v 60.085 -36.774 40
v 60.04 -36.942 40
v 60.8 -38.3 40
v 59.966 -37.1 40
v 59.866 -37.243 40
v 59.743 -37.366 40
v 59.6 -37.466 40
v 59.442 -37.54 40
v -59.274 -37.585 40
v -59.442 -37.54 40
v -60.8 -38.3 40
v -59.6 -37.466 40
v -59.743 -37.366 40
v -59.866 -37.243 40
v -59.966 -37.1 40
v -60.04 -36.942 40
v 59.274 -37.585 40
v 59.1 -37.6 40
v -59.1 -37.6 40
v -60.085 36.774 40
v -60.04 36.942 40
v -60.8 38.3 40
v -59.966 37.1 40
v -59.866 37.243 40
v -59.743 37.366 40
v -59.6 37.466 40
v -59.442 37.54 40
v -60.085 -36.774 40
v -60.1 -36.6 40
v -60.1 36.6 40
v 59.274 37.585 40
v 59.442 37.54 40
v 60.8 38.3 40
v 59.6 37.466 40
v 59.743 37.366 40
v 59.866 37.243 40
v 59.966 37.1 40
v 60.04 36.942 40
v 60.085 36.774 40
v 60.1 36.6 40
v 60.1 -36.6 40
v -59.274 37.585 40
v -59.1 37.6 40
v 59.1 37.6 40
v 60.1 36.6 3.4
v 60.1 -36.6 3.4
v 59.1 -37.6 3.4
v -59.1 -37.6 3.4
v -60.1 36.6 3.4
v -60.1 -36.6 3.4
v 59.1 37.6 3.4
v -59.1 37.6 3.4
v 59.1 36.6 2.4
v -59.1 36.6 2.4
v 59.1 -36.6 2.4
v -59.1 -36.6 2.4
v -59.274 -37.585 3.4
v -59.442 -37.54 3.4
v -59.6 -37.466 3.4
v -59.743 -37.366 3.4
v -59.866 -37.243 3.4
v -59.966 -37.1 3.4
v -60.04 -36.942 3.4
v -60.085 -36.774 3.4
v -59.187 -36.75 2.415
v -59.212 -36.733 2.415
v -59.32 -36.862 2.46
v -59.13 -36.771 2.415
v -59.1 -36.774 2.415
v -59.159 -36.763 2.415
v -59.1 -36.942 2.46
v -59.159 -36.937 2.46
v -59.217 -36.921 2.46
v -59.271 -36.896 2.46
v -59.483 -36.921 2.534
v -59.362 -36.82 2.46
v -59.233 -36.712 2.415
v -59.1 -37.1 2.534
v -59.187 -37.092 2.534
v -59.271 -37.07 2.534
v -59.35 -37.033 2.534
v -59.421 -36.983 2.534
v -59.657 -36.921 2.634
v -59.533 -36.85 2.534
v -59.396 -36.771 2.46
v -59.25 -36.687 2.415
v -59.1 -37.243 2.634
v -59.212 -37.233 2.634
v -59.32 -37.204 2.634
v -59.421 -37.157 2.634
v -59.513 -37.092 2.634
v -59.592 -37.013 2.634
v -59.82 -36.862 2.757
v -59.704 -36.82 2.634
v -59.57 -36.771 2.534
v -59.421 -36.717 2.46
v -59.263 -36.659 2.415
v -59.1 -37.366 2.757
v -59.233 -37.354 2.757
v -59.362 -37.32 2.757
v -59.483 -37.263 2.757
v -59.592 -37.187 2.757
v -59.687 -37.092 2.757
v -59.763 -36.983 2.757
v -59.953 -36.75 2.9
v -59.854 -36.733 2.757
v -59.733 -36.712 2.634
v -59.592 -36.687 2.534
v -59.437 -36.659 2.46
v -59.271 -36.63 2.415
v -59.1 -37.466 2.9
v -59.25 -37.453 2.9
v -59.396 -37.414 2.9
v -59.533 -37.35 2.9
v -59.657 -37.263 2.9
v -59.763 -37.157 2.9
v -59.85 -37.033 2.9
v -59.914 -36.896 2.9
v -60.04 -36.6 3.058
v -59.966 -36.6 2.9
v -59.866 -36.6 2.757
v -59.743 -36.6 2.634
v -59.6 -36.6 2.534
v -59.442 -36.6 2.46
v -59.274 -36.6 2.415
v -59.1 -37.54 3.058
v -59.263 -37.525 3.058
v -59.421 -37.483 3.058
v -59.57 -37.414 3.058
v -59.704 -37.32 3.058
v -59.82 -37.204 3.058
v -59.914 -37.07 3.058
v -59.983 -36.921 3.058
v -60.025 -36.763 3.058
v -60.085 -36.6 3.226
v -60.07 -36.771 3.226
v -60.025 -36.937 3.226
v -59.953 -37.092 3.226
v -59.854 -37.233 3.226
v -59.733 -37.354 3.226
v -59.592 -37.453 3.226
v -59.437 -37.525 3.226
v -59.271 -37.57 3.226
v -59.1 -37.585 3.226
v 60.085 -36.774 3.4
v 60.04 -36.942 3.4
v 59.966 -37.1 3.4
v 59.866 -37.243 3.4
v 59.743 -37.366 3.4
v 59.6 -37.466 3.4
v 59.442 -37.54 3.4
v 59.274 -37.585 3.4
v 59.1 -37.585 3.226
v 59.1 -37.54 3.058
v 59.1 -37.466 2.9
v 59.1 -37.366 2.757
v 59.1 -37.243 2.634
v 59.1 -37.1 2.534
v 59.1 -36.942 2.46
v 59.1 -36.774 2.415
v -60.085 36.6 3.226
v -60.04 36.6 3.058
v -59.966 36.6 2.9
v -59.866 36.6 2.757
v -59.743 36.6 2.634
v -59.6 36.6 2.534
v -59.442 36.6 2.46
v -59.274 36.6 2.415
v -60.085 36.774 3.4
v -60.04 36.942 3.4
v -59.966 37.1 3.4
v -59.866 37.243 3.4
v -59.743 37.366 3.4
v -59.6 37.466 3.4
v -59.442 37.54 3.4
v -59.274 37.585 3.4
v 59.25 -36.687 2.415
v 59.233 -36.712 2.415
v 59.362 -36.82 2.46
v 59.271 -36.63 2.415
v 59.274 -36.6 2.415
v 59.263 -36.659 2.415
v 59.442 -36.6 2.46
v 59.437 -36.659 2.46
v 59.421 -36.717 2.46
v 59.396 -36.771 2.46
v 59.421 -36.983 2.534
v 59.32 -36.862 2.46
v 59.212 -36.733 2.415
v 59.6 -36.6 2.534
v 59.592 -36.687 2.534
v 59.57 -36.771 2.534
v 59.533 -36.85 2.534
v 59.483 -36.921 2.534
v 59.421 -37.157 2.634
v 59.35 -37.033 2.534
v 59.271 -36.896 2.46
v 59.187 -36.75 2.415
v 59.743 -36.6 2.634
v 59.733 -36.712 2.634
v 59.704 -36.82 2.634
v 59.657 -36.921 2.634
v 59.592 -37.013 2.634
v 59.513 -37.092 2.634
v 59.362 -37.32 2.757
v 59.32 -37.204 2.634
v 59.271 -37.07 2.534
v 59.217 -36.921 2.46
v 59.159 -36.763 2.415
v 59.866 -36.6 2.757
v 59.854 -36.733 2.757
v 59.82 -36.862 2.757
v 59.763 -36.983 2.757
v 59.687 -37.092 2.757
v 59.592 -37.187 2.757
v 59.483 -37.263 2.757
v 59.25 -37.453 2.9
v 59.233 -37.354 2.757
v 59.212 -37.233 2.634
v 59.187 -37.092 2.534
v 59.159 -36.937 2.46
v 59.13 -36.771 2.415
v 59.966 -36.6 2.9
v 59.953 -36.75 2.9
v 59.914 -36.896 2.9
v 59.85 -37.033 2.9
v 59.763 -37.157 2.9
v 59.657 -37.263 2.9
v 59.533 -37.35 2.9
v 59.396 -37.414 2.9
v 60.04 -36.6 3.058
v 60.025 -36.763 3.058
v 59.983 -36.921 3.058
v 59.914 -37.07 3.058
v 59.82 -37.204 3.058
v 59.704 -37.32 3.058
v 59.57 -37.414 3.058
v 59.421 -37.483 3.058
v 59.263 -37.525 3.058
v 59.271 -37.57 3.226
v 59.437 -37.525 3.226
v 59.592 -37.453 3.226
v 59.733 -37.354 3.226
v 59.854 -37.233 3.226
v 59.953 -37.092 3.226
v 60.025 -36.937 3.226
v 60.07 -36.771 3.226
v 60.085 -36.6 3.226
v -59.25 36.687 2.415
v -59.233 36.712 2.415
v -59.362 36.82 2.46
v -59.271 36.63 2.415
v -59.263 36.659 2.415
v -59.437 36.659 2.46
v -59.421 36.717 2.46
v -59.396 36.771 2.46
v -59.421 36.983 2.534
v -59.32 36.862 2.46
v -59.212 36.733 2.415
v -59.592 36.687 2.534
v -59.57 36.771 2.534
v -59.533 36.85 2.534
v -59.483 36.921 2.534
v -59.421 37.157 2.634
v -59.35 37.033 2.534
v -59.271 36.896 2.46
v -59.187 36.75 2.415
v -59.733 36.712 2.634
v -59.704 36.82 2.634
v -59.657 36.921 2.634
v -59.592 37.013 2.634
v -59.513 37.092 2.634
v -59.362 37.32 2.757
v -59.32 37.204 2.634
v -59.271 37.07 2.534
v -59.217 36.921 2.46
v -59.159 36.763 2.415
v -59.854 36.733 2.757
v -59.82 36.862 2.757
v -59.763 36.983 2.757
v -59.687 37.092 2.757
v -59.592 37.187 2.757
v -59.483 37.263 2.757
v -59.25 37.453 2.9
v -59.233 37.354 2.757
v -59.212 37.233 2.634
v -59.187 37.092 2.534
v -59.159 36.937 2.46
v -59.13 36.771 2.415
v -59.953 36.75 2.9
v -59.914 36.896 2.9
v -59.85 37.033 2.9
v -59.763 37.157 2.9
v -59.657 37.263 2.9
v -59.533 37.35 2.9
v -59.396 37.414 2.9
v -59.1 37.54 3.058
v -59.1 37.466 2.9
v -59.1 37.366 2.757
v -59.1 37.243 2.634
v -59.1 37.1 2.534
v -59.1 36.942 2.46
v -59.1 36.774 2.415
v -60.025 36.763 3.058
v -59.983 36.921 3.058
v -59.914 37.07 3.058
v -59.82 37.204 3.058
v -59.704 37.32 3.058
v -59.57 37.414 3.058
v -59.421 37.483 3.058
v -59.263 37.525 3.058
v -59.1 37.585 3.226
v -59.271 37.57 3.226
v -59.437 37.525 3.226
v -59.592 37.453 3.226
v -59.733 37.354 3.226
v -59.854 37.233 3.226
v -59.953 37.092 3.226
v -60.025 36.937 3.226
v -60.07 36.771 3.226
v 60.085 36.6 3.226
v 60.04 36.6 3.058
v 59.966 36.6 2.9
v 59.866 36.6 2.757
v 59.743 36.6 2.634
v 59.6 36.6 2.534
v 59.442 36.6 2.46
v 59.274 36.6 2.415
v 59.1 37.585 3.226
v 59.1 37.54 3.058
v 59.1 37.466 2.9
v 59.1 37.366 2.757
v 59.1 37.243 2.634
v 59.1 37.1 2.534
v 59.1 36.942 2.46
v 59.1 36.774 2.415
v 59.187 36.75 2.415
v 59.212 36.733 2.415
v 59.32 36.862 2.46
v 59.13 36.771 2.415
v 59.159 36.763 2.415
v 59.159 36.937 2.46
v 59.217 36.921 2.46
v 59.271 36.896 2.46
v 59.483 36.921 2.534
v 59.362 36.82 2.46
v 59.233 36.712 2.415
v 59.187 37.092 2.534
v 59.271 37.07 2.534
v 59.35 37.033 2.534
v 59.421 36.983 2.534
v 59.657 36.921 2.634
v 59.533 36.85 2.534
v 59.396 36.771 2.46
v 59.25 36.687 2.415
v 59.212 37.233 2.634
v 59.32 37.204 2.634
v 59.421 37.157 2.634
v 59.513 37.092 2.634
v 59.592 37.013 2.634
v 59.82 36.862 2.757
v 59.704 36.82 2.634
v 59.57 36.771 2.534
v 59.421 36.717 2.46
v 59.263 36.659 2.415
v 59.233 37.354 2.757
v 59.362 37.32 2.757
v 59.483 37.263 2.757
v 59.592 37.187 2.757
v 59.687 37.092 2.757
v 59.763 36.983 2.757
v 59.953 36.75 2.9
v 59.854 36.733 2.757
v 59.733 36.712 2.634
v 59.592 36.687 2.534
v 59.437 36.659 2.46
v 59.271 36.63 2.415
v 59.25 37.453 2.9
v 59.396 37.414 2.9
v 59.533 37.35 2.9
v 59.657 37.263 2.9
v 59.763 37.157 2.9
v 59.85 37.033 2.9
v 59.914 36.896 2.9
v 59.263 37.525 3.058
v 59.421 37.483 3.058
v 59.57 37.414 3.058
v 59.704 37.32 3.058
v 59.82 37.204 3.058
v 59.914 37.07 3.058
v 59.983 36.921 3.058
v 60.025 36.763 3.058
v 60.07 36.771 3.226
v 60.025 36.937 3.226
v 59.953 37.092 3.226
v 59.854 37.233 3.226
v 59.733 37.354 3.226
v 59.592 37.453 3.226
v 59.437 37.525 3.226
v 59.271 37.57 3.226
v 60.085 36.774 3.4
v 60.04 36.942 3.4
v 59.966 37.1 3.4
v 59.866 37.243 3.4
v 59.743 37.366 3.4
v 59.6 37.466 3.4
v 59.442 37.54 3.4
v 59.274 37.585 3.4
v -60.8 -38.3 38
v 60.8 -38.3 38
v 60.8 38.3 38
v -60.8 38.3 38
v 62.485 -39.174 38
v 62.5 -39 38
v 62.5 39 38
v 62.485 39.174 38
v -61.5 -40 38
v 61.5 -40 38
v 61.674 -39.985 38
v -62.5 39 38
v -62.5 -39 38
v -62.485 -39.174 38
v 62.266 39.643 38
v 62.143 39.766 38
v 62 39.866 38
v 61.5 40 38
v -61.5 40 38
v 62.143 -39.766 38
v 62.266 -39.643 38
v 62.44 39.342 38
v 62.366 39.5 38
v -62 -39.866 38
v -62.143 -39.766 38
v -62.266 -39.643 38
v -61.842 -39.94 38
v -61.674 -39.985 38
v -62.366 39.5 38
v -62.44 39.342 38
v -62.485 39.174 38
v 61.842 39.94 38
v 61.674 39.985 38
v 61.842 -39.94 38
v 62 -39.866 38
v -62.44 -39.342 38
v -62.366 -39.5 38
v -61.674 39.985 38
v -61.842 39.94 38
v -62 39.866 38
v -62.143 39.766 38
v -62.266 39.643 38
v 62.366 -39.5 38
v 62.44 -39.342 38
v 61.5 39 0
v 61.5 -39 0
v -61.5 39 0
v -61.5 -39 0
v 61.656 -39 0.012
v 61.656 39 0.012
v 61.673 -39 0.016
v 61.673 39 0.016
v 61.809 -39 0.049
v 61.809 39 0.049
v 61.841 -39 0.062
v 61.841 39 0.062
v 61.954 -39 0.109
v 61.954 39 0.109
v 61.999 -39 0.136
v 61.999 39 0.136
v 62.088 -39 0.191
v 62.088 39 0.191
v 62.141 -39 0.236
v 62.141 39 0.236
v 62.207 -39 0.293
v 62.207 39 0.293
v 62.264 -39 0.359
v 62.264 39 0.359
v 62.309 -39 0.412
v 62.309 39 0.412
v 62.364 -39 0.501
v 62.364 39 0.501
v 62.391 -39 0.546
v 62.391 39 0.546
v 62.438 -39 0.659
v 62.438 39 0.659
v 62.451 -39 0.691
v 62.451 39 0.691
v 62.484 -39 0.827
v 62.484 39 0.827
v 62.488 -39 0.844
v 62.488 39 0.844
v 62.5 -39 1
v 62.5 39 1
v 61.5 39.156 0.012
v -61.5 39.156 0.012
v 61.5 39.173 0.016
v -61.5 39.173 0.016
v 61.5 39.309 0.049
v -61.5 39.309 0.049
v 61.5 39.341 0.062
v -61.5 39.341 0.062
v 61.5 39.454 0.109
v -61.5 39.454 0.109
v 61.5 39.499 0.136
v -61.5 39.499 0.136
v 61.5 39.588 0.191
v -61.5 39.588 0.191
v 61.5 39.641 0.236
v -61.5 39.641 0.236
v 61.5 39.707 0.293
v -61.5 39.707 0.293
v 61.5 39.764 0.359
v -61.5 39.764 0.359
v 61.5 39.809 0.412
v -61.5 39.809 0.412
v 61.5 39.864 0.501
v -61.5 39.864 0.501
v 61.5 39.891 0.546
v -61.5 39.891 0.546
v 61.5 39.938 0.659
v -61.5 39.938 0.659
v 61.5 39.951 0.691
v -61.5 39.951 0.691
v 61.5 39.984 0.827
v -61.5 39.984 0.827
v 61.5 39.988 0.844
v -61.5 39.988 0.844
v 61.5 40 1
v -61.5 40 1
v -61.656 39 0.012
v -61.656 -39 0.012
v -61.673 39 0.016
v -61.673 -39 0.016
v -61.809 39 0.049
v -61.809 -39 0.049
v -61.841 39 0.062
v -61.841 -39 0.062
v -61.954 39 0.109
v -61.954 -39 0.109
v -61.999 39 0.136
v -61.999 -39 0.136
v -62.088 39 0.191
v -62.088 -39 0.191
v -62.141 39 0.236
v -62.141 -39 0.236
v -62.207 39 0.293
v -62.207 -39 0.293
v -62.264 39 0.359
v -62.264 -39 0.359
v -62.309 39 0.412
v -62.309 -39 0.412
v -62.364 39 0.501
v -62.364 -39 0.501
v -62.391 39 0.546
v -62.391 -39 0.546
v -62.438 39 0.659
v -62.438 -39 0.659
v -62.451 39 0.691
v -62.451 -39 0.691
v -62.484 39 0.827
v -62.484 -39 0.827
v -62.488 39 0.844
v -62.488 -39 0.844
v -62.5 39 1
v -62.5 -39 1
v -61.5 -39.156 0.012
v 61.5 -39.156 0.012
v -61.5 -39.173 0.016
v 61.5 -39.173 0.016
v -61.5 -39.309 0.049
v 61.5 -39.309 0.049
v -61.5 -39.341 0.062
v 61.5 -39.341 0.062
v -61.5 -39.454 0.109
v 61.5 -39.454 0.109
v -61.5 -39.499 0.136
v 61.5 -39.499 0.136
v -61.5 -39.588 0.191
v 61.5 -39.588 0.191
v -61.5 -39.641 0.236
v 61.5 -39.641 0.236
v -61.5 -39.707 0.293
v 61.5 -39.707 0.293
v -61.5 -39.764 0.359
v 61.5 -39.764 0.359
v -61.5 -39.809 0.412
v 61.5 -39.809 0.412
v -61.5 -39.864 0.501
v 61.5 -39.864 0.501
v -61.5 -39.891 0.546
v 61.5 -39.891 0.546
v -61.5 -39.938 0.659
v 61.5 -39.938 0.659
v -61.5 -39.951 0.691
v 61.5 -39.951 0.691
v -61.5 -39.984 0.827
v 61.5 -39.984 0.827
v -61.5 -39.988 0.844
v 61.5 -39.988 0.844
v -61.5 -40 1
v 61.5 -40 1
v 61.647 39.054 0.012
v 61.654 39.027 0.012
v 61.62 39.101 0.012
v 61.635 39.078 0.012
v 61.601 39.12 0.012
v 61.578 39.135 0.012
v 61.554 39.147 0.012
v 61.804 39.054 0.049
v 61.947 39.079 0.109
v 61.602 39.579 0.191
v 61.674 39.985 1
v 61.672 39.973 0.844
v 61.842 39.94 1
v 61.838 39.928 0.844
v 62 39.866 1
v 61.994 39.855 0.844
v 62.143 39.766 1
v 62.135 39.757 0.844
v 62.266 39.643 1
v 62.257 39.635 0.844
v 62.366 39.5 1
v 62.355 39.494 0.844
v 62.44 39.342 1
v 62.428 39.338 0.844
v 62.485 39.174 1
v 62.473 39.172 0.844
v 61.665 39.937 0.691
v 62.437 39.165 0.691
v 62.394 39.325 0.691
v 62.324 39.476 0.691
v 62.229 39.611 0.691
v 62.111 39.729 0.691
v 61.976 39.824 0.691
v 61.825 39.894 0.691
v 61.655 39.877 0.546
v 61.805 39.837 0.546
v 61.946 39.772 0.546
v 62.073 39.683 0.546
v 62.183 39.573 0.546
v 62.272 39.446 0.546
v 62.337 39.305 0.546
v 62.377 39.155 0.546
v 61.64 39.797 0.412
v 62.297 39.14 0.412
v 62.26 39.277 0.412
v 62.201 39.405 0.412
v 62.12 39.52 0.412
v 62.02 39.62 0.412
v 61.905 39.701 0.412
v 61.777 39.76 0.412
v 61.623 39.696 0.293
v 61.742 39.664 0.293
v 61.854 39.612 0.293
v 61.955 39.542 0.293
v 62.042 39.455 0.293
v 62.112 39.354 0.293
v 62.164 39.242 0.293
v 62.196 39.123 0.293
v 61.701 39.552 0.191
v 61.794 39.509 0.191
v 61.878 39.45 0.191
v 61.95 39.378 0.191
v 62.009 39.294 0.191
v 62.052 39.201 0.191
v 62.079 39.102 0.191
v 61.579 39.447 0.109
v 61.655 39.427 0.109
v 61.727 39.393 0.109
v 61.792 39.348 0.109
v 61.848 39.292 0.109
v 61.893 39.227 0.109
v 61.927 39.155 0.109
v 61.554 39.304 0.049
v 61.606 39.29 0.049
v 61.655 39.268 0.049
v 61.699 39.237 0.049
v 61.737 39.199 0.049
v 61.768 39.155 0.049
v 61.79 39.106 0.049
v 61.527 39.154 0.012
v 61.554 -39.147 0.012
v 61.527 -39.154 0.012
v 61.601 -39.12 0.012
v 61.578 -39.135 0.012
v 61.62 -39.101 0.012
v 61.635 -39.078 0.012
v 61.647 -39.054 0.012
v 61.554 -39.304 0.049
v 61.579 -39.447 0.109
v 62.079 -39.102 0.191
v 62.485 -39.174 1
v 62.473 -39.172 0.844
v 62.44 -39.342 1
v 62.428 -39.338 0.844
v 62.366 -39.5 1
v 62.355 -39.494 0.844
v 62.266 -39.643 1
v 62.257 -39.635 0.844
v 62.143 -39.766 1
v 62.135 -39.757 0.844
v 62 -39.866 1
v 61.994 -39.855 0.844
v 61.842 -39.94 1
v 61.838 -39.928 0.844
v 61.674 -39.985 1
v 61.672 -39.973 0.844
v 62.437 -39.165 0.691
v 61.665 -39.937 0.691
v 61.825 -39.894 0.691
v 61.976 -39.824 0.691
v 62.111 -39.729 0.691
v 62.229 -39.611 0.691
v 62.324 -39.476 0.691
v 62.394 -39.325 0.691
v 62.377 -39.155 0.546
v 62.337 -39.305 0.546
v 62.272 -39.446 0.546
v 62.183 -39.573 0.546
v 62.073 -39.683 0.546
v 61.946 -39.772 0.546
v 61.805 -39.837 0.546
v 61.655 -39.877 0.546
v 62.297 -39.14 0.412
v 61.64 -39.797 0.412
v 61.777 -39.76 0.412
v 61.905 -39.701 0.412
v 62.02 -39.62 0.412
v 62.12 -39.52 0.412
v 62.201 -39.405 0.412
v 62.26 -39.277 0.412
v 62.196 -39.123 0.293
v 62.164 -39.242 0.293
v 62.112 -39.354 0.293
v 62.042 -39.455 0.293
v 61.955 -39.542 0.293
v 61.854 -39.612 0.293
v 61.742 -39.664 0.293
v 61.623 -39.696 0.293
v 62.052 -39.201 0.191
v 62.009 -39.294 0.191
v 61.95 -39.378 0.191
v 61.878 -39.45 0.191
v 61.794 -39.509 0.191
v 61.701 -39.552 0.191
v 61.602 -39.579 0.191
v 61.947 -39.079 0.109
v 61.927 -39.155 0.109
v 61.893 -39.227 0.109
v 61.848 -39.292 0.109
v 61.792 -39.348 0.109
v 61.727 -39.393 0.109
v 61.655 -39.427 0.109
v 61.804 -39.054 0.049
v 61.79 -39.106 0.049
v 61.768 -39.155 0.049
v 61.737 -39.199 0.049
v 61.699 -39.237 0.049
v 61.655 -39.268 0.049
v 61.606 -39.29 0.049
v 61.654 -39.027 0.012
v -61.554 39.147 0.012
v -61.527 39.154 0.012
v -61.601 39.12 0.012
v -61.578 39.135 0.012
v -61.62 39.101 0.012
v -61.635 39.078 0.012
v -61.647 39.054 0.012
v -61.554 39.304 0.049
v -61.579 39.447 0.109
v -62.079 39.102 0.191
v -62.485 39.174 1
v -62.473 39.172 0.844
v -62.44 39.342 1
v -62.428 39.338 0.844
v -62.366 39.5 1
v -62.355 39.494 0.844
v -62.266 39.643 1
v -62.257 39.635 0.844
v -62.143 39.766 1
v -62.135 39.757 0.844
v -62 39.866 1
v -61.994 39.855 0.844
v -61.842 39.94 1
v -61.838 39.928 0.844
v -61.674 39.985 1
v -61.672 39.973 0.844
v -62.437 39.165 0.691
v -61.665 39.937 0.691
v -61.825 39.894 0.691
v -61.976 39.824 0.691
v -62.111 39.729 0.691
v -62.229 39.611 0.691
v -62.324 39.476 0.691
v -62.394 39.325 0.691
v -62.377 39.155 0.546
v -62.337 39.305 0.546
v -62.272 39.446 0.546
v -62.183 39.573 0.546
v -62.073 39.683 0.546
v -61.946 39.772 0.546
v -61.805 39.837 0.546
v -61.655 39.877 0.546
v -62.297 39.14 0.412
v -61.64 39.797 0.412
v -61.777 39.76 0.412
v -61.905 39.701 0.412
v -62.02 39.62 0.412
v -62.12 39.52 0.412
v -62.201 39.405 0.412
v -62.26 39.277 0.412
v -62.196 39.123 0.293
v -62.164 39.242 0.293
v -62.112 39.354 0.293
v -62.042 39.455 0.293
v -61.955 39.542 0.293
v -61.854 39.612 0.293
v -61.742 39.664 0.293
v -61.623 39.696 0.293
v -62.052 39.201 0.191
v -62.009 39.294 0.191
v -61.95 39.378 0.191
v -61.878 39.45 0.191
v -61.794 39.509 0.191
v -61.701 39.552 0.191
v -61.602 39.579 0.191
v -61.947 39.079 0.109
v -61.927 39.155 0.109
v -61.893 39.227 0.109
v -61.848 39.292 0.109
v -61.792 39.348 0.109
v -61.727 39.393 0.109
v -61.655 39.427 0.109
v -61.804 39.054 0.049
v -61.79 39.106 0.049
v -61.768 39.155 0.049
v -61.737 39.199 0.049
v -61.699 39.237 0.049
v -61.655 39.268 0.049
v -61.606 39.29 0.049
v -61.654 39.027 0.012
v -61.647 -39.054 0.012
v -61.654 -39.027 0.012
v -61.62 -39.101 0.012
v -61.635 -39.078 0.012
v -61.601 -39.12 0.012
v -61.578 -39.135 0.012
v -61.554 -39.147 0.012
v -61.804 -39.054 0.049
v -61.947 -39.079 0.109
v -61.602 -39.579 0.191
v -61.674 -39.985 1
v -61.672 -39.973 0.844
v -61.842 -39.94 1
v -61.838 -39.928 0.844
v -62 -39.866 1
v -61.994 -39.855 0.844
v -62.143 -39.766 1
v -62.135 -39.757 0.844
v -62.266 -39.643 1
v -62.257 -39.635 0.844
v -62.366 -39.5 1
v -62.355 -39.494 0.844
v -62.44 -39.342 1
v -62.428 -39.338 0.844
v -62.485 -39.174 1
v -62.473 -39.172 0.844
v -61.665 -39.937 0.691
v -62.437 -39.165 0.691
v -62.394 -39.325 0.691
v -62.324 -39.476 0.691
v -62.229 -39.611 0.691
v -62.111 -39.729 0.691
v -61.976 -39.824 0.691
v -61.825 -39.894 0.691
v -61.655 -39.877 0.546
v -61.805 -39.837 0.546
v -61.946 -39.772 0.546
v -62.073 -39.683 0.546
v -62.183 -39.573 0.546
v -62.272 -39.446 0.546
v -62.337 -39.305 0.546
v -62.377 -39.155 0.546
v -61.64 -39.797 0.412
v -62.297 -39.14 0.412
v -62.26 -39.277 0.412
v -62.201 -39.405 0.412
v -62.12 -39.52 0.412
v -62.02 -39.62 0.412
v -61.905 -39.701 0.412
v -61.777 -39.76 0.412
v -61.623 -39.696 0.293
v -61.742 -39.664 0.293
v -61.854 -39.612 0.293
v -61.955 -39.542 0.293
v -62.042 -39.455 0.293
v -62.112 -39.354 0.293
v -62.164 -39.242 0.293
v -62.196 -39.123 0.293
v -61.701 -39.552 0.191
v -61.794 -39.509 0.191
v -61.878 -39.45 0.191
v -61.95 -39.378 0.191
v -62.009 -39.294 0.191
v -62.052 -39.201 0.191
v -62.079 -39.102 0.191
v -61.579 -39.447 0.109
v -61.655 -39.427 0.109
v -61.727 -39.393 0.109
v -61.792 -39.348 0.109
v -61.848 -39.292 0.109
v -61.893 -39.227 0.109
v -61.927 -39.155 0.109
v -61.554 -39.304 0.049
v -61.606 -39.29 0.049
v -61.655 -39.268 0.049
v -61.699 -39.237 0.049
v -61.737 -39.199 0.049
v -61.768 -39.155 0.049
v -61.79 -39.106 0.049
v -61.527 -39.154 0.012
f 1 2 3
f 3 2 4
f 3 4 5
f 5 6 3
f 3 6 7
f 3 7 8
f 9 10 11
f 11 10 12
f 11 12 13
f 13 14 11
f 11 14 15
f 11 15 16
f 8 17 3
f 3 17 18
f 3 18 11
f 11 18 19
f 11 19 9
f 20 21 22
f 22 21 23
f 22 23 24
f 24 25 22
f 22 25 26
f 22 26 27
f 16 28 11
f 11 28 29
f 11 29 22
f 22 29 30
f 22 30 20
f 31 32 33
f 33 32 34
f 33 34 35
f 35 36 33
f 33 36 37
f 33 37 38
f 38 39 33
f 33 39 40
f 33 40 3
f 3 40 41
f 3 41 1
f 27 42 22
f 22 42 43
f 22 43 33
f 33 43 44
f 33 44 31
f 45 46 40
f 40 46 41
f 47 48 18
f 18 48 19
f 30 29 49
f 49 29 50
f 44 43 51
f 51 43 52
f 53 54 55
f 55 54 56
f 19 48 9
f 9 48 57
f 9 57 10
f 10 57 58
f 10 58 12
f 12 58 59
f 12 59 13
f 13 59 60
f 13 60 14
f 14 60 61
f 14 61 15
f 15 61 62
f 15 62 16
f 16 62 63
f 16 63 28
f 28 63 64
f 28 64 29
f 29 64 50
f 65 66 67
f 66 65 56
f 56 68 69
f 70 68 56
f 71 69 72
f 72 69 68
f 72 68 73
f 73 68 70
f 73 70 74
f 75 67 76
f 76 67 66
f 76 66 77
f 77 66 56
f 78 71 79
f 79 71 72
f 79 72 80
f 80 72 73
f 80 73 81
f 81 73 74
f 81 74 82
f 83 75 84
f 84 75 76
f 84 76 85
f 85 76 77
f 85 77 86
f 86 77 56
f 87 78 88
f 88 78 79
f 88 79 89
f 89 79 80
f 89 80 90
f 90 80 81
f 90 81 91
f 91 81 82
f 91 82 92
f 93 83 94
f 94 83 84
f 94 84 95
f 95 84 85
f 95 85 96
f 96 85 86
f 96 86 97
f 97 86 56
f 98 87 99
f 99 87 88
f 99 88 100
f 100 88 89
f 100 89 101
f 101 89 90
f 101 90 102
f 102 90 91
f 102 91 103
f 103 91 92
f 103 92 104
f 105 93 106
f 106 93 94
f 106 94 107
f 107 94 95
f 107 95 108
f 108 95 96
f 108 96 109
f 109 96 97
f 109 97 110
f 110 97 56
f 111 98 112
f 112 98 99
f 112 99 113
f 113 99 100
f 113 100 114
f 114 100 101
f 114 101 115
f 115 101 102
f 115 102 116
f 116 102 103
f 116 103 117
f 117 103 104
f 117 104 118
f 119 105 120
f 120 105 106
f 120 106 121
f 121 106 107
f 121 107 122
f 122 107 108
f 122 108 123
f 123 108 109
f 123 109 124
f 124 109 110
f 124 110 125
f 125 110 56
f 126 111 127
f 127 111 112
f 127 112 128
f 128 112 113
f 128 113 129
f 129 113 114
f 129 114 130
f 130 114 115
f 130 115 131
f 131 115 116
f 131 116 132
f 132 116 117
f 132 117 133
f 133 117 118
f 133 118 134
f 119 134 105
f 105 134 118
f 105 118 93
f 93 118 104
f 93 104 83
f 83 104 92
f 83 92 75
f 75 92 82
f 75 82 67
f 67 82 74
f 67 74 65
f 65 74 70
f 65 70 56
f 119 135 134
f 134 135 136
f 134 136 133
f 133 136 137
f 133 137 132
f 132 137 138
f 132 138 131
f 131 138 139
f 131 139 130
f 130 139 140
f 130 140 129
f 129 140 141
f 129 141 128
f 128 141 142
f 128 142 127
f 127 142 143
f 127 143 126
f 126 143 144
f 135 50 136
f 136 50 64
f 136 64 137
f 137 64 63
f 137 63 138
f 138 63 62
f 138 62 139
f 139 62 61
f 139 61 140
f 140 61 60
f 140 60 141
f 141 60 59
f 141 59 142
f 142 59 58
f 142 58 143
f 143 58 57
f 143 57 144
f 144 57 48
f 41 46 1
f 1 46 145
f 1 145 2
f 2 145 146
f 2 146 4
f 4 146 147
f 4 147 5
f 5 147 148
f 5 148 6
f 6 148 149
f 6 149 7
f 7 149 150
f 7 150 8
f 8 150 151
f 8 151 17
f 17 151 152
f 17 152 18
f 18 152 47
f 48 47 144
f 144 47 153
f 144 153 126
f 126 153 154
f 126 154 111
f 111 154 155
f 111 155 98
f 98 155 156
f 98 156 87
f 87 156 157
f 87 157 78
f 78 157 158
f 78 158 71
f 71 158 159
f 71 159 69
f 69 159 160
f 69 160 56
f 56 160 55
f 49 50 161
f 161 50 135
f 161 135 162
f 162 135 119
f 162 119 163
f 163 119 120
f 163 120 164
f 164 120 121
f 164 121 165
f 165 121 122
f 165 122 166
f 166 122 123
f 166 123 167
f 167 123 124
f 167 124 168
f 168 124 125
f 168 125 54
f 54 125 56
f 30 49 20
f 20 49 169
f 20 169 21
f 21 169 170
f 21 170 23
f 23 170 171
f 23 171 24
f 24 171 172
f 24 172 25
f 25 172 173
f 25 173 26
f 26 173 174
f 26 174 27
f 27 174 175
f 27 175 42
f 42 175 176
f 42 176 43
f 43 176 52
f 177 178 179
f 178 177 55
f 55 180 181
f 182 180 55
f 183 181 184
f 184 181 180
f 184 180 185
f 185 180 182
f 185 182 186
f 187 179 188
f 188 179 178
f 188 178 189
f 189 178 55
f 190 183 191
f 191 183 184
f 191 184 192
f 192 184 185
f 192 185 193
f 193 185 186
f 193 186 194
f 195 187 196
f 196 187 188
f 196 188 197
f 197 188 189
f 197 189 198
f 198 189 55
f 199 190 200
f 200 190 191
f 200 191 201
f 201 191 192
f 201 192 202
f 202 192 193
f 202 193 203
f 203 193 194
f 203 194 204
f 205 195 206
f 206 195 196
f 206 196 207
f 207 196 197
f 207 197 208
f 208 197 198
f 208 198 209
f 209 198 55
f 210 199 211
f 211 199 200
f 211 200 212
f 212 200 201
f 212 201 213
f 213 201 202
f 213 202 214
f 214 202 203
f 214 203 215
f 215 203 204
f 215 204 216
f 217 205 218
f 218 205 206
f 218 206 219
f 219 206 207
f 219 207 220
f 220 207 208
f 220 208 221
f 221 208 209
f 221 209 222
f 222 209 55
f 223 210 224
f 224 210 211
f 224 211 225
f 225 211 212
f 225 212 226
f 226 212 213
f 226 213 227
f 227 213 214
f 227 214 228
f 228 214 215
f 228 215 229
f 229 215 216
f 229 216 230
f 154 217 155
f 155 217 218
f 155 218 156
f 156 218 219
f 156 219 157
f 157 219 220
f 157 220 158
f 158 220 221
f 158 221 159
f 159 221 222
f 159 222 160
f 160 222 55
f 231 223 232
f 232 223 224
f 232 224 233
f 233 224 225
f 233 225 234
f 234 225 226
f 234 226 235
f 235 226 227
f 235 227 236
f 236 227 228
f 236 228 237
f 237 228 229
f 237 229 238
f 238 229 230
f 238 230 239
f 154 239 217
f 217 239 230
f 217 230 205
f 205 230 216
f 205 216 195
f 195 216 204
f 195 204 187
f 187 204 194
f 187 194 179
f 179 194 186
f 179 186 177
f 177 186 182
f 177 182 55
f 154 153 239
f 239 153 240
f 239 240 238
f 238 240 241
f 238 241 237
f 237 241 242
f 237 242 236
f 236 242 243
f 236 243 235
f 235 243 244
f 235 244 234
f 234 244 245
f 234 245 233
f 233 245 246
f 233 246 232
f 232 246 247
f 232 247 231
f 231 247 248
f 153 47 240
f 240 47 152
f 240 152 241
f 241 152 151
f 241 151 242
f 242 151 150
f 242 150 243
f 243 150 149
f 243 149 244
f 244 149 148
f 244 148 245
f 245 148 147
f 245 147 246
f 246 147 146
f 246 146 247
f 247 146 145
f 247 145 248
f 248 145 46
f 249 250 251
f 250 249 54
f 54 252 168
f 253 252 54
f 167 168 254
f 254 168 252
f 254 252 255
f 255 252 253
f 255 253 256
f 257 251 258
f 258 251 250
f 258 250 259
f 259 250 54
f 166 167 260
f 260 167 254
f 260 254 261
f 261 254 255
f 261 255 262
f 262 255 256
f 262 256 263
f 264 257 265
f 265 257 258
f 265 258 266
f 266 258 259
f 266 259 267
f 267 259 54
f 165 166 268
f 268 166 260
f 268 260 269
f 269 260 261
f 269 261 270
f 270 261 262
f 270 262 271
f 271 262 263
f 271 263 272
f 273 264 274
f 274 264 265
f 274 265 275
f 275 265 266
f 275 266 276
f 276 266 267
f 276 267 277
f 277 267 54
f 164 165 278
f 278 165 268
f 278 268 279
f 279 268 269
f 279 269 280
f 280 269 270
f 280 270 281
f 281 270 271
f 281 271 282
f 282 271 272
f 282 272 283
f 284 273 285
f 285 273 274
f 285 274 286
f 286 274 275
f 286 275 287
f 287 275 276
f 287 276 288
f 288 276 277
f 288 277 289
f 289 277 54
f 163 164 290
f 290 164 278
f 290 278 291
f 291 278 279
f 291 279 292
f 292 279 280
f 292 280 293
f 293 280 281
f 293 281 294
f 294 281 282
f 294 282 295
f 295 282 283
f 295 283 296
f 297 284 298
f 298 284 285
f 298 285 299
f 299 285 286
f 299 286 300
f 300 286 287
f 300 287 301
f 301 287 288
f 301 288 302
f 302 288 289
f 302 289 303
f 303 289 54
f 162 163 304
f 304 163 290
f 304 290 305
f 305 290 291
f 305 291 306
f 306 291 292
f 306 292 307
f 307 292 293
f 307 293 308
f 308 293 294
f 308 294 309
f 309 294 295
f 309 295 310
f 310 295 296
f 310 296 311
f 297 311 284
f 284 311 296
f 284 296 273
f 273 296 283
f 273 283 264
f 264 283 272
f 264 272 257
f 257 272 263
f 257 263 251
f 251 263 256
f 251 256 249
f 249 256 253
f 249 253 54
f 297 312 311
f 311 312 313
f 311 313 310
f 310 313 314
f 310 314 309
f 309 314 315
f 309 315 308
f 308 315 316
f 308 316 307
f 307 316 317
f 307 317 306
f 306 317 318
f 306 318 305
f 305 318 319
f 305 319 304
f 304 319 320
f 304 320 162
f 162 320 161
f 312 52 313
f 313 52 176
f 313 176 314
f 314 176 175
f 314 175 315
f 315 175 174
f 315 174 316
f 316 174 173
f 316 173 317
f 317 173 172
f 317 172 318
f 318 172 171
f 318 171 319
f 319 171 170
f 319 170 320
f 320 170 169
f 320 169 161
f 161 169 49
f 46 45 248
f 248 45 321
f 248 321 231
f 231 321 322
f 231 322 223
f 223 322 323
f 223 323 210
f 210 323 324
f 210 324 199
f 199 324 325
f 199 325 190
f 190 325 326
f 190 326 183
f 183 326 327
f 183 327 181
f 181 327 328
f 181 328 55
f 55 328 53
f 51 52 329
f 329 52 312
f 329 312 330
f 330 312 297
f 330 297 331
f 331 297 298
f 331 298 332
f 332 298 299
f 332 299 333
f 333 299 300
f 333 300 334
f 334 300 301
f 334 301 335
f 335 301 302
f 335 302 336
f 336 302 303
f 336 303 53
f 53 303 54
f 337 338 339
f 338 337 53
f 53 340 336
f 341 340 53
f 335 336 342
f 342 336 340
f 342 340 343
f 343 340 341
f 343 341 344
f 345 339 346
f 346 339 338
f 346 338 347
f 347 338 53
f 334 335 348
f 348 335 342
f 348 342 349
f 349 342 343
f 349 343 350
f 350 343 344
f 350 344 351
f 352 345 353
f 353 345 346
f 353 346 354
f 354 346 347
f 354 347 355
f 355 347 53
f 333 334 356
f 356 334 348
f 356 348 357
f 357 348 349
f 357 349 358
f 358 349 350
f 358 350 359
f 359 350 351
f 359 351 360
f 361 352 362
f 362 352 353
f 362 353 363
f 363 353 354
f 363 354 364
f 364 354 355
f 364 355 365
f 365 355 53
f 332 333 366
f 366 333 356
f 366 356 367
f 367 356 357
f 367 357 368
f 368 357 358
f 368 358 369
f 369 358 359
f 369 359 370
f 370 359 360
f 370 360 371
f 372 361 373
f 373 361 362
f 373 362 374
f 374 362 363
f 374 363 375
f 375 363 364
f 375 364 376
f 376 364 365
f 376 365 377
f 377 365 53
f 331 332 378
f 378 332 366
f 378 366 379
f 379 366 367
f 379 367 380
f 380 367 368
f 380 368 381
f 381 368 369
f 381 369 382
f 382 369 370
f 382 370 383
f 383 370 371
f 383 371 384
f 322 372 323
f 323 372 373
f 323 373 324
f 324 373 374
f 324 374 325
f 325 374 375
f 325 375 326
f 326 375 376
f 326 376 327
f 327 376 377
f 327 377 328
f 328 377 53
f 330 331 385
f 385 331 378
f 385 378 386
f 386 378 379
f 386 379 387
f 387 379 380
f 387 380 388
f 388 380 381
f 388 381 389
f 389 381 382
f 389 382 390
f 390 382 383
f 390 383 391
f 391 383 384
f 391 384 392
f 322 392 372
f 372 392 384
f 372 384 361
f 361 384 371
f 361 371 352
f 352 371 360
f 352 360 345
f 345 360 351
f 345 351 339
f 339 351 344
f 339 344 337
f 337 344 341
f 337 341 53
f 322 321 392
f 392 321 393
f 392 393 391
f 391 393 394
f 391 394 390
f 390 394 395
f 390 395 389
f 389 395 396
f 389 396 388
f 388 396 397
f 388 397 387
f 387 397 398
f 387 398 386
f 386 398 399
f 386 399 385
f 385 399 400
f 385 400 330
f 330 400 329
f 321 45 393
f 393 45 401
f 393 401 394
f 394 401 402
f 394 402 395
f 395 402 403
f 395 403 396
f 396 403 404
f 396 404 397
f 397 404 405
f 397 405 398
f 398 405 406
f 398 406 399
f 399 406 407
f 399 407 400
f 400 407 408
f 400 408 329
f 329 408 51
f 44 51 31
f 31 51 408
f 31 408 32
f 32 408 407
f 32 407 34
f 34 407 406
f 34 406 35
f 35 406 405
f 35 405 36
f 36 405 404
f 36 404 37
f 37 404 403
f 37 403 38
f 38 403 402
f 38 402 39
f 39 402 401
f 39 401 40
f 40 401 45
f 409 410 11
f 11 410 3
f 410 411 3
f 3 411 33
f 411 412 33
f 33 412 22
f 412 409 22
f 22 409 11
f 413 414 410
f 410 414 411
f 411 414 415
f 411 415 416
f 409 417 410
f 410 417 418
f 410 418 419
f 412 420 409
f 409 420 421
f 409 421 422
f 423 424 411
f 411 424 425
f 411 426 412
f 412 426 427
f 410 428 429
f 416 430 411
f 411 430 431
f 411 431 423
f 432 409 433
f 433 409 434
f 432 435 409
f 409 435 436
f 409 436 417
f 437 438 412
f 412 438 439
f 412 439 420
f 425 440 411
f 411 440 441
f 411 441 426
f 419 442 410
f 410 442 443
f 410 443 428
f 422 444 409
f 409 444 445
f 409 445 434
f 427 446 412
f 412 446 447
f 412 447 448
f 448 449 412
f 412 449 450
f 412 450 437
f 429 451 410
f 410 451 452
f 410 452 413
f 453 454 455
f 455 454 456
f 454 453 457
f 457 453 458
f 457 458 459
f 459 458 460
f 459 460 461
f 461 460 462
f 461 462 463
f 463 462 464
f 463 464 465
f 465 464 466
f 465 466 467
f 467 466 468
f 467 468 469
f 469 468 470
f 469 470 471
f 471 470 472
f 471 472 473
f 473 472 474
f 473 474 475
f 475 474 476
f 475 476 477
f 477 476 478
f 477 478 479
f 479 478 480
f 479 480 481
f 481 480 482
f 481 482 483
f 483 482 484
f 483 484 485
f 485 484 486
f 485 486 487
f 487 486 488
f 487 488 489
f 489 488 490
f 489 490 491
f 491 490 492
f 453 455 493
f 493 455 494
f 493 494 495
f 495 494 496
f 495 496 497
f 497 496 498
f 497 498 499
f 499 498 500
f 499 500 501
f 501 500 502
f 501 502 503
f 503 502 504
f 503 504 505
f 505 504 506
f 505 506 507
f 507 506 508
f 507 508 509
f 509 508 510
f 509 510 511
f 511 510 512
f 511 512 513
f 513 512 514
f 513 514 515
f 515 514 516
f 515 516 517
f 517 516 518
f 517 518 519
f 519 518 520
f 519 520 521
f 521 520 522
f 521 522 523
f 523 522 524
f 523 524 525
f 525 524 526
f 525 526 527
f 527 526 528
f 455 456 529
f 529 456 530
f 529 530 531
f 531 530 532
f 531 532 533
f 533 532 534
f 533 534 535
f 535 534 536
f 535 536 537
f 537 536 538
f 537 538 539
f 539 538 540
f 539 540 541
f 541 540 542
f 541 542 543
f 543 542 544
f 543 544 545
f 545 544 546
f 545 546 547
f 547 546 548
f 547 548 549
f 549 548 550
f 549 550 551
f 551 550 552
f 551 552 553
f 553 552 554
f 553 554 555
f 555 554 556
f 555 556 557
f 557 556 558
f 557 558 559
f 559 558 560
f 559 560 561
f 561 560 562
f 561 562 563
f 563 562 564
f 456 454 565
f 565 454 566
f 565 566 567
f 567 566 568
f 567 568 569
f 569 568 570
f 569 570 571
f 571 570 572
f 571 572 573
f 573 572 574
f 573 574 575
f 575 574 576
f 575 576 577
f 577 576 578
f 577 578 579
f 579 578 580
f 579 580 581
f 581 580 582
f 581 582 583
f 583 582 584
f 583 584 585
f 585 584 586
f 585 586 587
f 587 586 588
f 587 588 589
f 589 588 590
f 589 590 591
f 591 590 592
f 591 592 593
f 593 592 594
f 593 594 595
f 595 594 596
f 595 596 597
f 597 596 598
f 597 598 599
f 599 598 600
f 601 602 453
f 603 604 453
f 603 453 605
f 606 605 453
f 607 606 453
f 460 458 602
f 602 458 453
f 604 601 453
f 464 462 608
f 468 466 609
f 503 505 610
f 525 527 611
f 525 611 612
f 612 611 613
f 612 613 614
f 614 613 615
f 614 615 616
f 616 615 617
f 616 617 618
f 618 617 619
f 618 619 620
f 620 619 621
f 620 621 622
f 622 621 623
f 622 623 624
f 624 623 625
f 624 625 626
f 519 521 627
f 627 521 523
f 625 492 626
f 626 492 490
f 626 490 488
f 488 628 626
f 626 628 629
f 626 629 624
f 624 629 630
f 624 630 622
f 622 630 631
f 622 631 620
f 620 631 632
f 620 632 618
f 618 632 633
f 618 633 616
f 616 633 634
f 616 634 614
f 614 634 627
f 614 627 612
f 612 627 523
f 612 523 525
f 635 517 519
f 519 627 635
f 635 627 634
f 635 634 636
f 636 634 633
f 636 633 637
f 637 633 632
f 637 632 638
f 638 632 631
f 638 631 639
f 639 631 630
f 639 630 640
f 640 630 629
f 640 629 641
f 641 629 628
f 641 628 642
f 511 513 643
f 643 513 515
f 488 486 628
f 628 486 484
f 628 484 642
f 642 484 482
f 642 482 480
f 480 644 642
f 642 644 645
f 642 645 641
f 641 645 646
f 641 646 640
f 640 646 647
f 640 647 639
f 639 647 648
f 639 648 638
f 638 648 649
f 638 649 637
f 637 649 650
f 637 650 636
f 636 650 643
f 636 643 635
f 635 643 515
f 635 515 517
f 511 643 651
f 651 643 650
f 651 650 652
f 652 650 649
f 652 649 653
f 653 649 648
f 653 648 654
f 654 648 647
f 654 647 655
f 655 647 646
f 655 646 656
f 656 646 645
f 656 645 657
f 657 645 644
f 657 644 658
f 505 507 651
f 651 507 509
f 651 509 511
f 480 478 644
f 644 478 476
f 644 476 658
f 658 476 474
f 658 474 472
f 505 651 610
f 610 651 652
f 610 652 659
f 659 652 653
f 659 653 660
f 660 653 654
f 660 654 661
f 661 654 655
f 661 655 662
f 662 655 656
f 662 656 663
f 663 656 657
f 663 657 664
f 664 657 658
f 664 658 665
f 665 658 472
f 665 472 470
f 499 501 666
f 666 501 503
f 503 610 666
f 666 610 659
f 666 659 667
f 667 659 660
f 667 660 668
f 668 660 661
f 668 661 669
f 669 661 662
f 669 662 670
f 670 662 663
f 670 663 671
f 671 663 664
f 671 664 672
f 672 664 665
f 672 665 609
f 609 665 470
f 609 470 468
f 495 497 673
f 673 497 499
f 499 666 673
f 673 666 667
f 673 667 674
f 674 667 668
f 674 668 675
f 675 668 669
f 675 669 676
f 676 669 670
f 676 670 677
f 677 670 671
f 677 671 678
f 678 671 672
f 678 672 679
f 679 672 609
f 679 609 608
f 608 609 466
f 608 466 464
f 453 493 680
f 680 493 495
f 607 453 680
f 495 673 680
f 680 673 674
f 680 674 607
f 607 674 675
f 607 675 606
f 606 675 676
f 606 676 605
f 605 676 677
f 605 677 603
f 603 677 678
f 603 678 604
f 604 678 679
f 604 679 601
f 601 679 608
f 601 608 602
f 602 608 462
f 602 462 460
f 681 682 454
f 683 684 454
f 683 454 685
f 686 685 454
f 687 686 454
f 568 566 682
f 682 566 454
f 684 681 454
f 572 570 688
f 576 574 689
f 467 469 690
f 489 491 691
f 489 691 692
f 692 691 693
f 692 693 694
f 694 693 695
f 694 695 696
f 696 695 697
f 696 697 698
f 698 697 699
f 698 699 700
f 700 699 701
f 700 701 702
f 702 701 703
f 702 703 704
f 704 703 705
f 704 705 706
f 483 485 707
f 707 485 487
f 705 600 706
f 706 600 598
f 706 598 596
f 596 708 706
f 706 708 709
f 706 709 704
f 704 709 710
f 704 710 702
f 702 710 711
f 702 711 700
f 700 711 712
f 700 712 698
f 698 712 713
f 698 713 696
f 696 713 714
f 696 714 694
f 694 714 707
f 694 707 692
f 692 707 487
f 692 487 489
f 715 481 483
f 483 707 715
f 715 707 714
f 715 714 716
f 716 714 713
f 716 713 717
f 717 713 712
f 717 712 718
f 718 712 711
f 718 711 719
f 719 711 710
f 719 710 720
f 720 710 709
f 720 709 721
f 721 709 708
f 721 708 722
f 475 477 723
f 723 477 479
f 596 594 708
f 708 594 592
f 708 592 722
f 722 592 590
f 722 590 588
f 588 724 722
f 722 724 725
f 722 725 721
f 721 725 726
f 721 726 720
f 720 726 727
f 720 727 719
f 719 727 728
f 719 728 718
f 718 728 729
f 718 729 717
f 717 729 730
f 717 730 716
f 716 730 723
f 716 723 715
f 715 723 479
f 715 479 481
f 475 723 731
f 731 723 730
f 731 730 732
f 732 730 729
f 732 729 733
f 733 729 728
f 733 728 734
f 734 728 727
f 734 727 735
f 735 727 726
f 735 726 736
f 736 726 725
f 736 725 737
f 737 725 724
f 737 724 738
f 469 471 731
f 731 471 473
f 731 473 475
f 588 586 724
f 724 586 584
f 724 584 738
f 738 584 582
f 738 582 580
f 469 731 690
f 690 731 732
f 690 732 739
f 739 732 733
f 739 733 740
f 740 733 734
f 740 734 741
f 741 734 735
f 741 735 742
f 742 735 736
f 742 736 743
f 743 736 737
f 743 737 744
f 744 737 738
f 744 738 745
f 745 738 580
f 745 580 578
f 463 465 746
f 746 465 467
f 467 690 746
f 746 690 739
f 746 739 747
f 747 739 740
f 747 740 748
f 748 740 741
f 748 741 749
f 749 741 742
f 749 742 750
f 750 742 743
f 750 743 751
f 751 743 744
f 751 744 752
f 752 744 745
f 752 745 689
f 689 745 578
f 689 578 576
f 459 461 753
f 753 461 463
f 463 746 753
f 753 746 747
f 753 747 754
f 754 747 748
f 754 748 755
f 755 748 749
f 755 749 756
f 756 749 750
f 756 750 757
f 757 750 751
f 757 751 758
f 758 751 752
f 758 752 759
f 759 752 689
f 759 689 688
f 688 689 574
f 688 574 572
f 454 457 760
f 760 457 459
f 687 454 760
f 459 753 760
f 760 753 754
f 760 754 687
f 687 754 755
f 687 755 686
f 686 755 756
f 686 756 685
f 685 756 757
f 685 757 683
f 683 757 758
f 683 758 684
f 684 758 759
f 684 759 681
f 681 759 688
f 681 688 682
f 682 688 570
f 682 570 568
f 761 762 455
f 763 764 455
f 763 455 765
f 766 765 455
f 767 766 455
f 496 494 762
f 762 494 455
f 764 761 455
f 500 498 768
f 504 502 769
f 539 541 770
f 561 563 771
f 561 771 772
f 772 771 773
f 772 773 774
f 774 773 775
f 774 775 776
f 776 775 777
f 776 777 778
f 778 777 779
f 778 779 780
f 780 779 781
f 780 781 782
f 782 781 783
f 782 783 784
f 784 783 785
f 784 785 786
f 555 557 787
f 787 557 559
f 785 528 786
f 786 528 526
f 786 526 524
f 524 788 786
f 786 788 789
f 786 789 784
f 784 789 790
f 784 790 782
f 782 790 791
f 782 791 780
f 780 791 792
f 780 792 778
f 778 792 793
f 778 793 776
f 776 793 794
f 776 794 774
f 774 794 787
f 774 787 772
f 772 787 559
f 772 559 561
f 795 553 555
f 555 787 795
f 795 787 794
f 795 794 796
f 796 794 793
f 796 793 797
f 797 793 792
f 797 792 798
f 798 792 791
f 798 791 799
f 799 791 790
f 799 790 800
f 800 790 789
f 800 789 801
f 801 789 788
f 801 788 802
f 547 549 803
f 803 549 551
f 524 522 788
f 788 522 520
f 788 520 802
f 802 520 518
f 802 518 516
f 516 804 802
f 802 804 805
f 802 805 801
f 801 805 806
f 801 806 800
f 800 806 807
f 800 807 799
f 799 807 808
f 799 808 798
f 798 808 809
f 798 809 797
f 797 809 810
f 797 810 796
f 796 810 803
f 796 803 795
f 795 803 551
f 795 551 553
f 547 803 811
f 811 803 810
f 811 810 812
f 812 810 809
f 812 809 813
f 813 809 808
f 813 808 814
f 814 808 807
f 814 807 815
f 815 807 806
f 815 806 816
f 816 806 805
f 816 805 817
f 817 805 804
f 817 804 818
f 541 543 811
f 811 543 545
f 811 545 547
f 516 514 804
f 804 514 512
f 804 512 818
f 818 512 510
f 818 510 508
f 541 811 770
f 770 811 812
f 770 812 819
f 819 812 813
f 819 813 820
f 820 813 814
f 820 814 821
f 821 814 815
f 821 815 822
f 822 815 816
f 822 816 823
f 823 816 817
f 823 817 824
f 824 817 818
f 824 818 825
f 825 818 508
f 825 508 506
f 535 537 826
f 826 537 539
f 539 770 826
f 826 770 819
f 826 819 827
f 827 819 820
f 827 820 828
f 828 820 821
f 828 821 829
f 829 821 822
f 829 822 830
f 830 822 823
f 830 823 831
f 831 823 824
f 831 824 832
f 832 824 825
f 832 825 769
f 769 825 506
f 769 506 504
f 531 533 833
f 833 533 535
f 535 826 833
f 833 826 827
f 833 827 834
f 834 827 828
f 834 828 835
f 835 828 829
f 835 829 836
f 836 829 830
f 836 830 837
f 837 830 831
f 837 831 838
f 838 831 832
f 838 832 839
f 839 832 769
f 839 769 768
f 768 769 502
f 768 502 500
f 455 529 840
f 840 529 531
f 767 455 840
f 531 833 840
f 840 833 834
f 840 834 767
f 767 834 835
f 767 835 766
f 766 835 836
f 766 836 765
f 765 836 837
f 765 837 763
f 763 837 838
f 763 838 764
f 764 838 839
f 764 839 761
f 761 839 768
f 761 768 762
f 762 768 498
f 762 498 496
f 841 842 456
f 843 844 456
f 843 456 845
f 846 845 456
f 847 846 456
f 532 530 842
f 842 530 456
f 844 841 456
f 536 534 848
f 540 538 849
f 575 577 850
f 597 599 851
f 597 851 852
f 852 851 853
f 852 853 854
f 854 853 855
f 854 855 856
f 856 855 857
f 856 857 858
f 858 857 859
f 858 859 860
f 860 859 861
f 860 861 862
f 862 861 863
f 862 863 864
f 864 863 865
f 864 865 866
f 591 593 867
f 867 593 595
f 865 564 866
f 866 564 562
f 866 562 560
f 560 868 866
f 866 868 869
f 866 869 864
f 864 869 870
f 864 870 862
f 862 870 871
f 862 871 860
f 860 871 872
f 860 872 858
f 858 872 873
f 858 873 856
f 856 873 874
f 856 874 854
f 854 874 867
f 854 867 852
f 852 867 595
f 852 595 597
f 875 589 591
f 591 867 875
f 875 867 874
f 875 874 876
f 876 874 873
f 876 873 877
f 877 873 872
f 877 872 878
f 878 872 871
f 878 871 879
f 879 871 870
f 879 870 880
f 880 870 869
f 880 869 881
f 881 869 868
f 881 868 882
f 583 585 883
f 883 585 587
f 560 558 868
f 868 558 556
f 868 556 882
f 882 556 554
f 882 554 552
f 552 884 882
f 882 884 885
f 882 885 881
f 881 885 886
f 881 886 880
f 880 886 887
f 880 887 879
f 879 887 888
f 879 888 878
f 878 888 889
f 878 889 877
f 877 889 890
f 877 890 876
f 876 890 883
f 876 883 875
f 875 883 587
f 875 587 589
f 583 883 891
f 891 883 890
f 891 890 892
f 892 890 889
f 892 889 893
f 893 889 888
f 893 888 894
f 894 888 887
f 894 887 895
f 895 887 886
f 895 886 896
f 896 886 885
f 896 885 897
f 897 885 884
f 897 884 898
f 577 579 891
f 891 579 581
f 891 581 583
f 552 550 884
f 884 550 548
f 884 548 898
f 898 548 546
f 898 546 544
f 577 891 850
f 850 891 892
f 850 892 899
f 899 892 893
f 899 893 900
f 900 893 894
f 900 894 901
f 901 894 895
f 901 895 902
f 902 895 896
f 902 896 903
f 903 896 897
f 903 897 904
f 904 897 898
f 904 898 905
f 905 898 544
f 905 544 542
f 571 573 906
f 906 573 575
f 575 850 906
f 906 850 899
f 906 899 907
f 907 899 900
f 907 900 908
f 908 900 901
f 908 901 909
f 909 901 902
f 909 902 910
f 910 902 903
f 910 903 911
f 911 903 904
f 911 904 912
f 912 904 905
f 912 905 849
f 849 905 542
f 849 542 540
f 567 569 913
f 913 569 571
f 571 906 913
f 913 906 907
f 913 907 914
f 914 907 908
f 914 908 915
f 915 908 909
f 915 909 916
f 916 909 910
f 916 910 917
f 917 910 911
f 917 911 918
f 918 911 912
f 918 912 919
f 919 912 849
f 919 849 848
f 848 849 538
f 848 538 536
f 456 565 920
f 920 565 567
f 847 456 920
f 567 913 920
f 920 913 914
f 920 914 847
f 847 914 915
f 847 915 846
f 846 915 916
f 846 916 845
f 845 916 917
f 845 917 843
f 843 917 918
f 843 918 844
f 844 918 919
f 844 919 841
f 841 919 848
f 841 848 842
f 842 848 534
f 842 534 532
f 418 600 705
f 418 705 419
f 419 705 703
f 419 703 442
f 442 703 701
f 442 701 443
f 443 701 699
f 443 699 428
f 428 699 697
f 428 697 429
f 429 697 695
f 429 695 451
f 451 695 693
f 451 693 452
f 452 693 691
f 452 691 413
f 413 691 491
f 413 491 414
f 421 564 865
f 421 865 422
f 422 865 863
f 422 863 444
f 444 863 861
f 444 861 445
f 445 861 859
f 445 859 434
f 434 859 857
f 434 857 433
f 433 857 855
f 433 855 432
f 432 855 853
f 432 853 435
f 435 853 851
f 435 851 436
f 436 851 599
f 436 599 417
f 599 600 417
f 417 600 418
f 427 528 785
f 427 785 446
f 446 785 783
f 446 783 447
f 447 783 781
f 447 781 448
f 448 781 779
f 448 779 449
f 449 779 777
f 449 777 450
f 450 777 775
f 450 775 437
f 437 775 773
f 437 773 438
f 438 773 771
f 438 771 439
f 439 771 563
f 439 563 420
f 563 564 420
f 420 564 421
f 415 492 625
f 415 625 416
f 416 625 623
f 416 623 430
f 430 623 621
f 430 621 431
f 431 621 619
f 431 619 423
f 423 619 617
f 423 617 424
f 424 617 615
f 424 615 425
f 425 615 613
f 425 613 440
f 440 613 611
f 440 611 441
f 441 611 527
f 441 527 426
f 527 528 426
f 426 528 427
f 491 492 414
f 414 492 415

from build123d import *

# Parameters (mm, degrees)
SKETCH_1_W          = 125
SKETCH_1_H          = 80
EXTRUDE_1_DEPTH     = 40
SKETCH_2_W          = 120.2
SKETCH_2_H          = 75.2
CUT_EXTRUDE_1_DEPTH = 37.6
FILLET_1_R          = 1
FILLET_2_R          = 1
SKETCH_7_W          = 121.6
SKETCH_7_H          = 76.6
CUT_EXTRUDE_4_DEPTH = 2


with BuildPart() as part:
    # Эскиз1 → Бобышка-Вытянуть1 (new body)
    with BuildSketch(Plane.XY):
        Rectangle(SKETCH_1_W, SKETCH_1_H)
    extrude(amount=EXTRUDE_1_DEPTH)

    # Эскиз2 → Вырез-Вытянуть1 (cut)
    with BuildSketch(Plane.XY.offset(40)):
        Rectangle(SKETCH_2_W, SKETCH_2_H)
    extrude(amount=-CUT_EXTRUDE_1_DEPTH, mode=Mode.SUBTRACT)

    # Скругление1
    fillet_1_edges = [part.edges().sort_by_distance(p)[0] for p in [
        (0, -40, 0),
        (-62.5, 0, 0),
        (0, 40, 0),
        (62.5, 0, 0),
        (62.5, -40, 20),
        (-62.5, -40, 20),
        (-62.5, 40, 20),
        (62.5, 40, 20),
    ]]
    fillet(fillet_1_edges, radius=FILLET_1_R)

    # Скругление2
    fillet_2_edges = [part.edges().sort_by_distance(p)[0] for p in [
        (60.1, 0, 2.4),
        (60.1, 37.6, 21.2),
        (0, -37.6, 2.4),
        (60.1, -37.6, 21.2),
        (-60.1, 0, 2.4),
        (-60.1, -37.6, 21.2),
        (0, 37.6, 2.4),
        (-60.1, 37.6, 21.2),
    ]]
    fillet(fillet_2_edges, radius=FILLET_2_R)

    # Эскиз7 → Вырез-Вытянуть4 (cut)
    with BuildSketch(Plane.XY.offset(40)):
        with BuildLine():
            ThreePointArc((-62.5, -39), (-62.207106781, -39.707106781), (-61.5, -40))
            Line((-61.5, -40), (61.5, -40))
            ThreePointArc((61.5, -40), (62.207106781, -39.707106781), (62.5, -39))
            Line((62.5, -39), (62.5, 39))
            ThreePointArc((62.5, 39), (62.207106781, 39.707106781), (61.5, 40))
            Line((61.5, 40), (-61.5, 40))
            ThreePointArc((-61.5, 40), (-62.207106781, 39.707106781), (-62.5, 39))
            Line((-62.5, 39), (-62.5, -39))
        make_face()
        Rectangle(SKETCH_7_W, SKETCH_7_H, mode=Mode.SUBTRACT)
    extrude(amount=-CUT_EXTRUDE_4_DEPTH, mode=Mode.SUBTRACT)


solid = part.part
